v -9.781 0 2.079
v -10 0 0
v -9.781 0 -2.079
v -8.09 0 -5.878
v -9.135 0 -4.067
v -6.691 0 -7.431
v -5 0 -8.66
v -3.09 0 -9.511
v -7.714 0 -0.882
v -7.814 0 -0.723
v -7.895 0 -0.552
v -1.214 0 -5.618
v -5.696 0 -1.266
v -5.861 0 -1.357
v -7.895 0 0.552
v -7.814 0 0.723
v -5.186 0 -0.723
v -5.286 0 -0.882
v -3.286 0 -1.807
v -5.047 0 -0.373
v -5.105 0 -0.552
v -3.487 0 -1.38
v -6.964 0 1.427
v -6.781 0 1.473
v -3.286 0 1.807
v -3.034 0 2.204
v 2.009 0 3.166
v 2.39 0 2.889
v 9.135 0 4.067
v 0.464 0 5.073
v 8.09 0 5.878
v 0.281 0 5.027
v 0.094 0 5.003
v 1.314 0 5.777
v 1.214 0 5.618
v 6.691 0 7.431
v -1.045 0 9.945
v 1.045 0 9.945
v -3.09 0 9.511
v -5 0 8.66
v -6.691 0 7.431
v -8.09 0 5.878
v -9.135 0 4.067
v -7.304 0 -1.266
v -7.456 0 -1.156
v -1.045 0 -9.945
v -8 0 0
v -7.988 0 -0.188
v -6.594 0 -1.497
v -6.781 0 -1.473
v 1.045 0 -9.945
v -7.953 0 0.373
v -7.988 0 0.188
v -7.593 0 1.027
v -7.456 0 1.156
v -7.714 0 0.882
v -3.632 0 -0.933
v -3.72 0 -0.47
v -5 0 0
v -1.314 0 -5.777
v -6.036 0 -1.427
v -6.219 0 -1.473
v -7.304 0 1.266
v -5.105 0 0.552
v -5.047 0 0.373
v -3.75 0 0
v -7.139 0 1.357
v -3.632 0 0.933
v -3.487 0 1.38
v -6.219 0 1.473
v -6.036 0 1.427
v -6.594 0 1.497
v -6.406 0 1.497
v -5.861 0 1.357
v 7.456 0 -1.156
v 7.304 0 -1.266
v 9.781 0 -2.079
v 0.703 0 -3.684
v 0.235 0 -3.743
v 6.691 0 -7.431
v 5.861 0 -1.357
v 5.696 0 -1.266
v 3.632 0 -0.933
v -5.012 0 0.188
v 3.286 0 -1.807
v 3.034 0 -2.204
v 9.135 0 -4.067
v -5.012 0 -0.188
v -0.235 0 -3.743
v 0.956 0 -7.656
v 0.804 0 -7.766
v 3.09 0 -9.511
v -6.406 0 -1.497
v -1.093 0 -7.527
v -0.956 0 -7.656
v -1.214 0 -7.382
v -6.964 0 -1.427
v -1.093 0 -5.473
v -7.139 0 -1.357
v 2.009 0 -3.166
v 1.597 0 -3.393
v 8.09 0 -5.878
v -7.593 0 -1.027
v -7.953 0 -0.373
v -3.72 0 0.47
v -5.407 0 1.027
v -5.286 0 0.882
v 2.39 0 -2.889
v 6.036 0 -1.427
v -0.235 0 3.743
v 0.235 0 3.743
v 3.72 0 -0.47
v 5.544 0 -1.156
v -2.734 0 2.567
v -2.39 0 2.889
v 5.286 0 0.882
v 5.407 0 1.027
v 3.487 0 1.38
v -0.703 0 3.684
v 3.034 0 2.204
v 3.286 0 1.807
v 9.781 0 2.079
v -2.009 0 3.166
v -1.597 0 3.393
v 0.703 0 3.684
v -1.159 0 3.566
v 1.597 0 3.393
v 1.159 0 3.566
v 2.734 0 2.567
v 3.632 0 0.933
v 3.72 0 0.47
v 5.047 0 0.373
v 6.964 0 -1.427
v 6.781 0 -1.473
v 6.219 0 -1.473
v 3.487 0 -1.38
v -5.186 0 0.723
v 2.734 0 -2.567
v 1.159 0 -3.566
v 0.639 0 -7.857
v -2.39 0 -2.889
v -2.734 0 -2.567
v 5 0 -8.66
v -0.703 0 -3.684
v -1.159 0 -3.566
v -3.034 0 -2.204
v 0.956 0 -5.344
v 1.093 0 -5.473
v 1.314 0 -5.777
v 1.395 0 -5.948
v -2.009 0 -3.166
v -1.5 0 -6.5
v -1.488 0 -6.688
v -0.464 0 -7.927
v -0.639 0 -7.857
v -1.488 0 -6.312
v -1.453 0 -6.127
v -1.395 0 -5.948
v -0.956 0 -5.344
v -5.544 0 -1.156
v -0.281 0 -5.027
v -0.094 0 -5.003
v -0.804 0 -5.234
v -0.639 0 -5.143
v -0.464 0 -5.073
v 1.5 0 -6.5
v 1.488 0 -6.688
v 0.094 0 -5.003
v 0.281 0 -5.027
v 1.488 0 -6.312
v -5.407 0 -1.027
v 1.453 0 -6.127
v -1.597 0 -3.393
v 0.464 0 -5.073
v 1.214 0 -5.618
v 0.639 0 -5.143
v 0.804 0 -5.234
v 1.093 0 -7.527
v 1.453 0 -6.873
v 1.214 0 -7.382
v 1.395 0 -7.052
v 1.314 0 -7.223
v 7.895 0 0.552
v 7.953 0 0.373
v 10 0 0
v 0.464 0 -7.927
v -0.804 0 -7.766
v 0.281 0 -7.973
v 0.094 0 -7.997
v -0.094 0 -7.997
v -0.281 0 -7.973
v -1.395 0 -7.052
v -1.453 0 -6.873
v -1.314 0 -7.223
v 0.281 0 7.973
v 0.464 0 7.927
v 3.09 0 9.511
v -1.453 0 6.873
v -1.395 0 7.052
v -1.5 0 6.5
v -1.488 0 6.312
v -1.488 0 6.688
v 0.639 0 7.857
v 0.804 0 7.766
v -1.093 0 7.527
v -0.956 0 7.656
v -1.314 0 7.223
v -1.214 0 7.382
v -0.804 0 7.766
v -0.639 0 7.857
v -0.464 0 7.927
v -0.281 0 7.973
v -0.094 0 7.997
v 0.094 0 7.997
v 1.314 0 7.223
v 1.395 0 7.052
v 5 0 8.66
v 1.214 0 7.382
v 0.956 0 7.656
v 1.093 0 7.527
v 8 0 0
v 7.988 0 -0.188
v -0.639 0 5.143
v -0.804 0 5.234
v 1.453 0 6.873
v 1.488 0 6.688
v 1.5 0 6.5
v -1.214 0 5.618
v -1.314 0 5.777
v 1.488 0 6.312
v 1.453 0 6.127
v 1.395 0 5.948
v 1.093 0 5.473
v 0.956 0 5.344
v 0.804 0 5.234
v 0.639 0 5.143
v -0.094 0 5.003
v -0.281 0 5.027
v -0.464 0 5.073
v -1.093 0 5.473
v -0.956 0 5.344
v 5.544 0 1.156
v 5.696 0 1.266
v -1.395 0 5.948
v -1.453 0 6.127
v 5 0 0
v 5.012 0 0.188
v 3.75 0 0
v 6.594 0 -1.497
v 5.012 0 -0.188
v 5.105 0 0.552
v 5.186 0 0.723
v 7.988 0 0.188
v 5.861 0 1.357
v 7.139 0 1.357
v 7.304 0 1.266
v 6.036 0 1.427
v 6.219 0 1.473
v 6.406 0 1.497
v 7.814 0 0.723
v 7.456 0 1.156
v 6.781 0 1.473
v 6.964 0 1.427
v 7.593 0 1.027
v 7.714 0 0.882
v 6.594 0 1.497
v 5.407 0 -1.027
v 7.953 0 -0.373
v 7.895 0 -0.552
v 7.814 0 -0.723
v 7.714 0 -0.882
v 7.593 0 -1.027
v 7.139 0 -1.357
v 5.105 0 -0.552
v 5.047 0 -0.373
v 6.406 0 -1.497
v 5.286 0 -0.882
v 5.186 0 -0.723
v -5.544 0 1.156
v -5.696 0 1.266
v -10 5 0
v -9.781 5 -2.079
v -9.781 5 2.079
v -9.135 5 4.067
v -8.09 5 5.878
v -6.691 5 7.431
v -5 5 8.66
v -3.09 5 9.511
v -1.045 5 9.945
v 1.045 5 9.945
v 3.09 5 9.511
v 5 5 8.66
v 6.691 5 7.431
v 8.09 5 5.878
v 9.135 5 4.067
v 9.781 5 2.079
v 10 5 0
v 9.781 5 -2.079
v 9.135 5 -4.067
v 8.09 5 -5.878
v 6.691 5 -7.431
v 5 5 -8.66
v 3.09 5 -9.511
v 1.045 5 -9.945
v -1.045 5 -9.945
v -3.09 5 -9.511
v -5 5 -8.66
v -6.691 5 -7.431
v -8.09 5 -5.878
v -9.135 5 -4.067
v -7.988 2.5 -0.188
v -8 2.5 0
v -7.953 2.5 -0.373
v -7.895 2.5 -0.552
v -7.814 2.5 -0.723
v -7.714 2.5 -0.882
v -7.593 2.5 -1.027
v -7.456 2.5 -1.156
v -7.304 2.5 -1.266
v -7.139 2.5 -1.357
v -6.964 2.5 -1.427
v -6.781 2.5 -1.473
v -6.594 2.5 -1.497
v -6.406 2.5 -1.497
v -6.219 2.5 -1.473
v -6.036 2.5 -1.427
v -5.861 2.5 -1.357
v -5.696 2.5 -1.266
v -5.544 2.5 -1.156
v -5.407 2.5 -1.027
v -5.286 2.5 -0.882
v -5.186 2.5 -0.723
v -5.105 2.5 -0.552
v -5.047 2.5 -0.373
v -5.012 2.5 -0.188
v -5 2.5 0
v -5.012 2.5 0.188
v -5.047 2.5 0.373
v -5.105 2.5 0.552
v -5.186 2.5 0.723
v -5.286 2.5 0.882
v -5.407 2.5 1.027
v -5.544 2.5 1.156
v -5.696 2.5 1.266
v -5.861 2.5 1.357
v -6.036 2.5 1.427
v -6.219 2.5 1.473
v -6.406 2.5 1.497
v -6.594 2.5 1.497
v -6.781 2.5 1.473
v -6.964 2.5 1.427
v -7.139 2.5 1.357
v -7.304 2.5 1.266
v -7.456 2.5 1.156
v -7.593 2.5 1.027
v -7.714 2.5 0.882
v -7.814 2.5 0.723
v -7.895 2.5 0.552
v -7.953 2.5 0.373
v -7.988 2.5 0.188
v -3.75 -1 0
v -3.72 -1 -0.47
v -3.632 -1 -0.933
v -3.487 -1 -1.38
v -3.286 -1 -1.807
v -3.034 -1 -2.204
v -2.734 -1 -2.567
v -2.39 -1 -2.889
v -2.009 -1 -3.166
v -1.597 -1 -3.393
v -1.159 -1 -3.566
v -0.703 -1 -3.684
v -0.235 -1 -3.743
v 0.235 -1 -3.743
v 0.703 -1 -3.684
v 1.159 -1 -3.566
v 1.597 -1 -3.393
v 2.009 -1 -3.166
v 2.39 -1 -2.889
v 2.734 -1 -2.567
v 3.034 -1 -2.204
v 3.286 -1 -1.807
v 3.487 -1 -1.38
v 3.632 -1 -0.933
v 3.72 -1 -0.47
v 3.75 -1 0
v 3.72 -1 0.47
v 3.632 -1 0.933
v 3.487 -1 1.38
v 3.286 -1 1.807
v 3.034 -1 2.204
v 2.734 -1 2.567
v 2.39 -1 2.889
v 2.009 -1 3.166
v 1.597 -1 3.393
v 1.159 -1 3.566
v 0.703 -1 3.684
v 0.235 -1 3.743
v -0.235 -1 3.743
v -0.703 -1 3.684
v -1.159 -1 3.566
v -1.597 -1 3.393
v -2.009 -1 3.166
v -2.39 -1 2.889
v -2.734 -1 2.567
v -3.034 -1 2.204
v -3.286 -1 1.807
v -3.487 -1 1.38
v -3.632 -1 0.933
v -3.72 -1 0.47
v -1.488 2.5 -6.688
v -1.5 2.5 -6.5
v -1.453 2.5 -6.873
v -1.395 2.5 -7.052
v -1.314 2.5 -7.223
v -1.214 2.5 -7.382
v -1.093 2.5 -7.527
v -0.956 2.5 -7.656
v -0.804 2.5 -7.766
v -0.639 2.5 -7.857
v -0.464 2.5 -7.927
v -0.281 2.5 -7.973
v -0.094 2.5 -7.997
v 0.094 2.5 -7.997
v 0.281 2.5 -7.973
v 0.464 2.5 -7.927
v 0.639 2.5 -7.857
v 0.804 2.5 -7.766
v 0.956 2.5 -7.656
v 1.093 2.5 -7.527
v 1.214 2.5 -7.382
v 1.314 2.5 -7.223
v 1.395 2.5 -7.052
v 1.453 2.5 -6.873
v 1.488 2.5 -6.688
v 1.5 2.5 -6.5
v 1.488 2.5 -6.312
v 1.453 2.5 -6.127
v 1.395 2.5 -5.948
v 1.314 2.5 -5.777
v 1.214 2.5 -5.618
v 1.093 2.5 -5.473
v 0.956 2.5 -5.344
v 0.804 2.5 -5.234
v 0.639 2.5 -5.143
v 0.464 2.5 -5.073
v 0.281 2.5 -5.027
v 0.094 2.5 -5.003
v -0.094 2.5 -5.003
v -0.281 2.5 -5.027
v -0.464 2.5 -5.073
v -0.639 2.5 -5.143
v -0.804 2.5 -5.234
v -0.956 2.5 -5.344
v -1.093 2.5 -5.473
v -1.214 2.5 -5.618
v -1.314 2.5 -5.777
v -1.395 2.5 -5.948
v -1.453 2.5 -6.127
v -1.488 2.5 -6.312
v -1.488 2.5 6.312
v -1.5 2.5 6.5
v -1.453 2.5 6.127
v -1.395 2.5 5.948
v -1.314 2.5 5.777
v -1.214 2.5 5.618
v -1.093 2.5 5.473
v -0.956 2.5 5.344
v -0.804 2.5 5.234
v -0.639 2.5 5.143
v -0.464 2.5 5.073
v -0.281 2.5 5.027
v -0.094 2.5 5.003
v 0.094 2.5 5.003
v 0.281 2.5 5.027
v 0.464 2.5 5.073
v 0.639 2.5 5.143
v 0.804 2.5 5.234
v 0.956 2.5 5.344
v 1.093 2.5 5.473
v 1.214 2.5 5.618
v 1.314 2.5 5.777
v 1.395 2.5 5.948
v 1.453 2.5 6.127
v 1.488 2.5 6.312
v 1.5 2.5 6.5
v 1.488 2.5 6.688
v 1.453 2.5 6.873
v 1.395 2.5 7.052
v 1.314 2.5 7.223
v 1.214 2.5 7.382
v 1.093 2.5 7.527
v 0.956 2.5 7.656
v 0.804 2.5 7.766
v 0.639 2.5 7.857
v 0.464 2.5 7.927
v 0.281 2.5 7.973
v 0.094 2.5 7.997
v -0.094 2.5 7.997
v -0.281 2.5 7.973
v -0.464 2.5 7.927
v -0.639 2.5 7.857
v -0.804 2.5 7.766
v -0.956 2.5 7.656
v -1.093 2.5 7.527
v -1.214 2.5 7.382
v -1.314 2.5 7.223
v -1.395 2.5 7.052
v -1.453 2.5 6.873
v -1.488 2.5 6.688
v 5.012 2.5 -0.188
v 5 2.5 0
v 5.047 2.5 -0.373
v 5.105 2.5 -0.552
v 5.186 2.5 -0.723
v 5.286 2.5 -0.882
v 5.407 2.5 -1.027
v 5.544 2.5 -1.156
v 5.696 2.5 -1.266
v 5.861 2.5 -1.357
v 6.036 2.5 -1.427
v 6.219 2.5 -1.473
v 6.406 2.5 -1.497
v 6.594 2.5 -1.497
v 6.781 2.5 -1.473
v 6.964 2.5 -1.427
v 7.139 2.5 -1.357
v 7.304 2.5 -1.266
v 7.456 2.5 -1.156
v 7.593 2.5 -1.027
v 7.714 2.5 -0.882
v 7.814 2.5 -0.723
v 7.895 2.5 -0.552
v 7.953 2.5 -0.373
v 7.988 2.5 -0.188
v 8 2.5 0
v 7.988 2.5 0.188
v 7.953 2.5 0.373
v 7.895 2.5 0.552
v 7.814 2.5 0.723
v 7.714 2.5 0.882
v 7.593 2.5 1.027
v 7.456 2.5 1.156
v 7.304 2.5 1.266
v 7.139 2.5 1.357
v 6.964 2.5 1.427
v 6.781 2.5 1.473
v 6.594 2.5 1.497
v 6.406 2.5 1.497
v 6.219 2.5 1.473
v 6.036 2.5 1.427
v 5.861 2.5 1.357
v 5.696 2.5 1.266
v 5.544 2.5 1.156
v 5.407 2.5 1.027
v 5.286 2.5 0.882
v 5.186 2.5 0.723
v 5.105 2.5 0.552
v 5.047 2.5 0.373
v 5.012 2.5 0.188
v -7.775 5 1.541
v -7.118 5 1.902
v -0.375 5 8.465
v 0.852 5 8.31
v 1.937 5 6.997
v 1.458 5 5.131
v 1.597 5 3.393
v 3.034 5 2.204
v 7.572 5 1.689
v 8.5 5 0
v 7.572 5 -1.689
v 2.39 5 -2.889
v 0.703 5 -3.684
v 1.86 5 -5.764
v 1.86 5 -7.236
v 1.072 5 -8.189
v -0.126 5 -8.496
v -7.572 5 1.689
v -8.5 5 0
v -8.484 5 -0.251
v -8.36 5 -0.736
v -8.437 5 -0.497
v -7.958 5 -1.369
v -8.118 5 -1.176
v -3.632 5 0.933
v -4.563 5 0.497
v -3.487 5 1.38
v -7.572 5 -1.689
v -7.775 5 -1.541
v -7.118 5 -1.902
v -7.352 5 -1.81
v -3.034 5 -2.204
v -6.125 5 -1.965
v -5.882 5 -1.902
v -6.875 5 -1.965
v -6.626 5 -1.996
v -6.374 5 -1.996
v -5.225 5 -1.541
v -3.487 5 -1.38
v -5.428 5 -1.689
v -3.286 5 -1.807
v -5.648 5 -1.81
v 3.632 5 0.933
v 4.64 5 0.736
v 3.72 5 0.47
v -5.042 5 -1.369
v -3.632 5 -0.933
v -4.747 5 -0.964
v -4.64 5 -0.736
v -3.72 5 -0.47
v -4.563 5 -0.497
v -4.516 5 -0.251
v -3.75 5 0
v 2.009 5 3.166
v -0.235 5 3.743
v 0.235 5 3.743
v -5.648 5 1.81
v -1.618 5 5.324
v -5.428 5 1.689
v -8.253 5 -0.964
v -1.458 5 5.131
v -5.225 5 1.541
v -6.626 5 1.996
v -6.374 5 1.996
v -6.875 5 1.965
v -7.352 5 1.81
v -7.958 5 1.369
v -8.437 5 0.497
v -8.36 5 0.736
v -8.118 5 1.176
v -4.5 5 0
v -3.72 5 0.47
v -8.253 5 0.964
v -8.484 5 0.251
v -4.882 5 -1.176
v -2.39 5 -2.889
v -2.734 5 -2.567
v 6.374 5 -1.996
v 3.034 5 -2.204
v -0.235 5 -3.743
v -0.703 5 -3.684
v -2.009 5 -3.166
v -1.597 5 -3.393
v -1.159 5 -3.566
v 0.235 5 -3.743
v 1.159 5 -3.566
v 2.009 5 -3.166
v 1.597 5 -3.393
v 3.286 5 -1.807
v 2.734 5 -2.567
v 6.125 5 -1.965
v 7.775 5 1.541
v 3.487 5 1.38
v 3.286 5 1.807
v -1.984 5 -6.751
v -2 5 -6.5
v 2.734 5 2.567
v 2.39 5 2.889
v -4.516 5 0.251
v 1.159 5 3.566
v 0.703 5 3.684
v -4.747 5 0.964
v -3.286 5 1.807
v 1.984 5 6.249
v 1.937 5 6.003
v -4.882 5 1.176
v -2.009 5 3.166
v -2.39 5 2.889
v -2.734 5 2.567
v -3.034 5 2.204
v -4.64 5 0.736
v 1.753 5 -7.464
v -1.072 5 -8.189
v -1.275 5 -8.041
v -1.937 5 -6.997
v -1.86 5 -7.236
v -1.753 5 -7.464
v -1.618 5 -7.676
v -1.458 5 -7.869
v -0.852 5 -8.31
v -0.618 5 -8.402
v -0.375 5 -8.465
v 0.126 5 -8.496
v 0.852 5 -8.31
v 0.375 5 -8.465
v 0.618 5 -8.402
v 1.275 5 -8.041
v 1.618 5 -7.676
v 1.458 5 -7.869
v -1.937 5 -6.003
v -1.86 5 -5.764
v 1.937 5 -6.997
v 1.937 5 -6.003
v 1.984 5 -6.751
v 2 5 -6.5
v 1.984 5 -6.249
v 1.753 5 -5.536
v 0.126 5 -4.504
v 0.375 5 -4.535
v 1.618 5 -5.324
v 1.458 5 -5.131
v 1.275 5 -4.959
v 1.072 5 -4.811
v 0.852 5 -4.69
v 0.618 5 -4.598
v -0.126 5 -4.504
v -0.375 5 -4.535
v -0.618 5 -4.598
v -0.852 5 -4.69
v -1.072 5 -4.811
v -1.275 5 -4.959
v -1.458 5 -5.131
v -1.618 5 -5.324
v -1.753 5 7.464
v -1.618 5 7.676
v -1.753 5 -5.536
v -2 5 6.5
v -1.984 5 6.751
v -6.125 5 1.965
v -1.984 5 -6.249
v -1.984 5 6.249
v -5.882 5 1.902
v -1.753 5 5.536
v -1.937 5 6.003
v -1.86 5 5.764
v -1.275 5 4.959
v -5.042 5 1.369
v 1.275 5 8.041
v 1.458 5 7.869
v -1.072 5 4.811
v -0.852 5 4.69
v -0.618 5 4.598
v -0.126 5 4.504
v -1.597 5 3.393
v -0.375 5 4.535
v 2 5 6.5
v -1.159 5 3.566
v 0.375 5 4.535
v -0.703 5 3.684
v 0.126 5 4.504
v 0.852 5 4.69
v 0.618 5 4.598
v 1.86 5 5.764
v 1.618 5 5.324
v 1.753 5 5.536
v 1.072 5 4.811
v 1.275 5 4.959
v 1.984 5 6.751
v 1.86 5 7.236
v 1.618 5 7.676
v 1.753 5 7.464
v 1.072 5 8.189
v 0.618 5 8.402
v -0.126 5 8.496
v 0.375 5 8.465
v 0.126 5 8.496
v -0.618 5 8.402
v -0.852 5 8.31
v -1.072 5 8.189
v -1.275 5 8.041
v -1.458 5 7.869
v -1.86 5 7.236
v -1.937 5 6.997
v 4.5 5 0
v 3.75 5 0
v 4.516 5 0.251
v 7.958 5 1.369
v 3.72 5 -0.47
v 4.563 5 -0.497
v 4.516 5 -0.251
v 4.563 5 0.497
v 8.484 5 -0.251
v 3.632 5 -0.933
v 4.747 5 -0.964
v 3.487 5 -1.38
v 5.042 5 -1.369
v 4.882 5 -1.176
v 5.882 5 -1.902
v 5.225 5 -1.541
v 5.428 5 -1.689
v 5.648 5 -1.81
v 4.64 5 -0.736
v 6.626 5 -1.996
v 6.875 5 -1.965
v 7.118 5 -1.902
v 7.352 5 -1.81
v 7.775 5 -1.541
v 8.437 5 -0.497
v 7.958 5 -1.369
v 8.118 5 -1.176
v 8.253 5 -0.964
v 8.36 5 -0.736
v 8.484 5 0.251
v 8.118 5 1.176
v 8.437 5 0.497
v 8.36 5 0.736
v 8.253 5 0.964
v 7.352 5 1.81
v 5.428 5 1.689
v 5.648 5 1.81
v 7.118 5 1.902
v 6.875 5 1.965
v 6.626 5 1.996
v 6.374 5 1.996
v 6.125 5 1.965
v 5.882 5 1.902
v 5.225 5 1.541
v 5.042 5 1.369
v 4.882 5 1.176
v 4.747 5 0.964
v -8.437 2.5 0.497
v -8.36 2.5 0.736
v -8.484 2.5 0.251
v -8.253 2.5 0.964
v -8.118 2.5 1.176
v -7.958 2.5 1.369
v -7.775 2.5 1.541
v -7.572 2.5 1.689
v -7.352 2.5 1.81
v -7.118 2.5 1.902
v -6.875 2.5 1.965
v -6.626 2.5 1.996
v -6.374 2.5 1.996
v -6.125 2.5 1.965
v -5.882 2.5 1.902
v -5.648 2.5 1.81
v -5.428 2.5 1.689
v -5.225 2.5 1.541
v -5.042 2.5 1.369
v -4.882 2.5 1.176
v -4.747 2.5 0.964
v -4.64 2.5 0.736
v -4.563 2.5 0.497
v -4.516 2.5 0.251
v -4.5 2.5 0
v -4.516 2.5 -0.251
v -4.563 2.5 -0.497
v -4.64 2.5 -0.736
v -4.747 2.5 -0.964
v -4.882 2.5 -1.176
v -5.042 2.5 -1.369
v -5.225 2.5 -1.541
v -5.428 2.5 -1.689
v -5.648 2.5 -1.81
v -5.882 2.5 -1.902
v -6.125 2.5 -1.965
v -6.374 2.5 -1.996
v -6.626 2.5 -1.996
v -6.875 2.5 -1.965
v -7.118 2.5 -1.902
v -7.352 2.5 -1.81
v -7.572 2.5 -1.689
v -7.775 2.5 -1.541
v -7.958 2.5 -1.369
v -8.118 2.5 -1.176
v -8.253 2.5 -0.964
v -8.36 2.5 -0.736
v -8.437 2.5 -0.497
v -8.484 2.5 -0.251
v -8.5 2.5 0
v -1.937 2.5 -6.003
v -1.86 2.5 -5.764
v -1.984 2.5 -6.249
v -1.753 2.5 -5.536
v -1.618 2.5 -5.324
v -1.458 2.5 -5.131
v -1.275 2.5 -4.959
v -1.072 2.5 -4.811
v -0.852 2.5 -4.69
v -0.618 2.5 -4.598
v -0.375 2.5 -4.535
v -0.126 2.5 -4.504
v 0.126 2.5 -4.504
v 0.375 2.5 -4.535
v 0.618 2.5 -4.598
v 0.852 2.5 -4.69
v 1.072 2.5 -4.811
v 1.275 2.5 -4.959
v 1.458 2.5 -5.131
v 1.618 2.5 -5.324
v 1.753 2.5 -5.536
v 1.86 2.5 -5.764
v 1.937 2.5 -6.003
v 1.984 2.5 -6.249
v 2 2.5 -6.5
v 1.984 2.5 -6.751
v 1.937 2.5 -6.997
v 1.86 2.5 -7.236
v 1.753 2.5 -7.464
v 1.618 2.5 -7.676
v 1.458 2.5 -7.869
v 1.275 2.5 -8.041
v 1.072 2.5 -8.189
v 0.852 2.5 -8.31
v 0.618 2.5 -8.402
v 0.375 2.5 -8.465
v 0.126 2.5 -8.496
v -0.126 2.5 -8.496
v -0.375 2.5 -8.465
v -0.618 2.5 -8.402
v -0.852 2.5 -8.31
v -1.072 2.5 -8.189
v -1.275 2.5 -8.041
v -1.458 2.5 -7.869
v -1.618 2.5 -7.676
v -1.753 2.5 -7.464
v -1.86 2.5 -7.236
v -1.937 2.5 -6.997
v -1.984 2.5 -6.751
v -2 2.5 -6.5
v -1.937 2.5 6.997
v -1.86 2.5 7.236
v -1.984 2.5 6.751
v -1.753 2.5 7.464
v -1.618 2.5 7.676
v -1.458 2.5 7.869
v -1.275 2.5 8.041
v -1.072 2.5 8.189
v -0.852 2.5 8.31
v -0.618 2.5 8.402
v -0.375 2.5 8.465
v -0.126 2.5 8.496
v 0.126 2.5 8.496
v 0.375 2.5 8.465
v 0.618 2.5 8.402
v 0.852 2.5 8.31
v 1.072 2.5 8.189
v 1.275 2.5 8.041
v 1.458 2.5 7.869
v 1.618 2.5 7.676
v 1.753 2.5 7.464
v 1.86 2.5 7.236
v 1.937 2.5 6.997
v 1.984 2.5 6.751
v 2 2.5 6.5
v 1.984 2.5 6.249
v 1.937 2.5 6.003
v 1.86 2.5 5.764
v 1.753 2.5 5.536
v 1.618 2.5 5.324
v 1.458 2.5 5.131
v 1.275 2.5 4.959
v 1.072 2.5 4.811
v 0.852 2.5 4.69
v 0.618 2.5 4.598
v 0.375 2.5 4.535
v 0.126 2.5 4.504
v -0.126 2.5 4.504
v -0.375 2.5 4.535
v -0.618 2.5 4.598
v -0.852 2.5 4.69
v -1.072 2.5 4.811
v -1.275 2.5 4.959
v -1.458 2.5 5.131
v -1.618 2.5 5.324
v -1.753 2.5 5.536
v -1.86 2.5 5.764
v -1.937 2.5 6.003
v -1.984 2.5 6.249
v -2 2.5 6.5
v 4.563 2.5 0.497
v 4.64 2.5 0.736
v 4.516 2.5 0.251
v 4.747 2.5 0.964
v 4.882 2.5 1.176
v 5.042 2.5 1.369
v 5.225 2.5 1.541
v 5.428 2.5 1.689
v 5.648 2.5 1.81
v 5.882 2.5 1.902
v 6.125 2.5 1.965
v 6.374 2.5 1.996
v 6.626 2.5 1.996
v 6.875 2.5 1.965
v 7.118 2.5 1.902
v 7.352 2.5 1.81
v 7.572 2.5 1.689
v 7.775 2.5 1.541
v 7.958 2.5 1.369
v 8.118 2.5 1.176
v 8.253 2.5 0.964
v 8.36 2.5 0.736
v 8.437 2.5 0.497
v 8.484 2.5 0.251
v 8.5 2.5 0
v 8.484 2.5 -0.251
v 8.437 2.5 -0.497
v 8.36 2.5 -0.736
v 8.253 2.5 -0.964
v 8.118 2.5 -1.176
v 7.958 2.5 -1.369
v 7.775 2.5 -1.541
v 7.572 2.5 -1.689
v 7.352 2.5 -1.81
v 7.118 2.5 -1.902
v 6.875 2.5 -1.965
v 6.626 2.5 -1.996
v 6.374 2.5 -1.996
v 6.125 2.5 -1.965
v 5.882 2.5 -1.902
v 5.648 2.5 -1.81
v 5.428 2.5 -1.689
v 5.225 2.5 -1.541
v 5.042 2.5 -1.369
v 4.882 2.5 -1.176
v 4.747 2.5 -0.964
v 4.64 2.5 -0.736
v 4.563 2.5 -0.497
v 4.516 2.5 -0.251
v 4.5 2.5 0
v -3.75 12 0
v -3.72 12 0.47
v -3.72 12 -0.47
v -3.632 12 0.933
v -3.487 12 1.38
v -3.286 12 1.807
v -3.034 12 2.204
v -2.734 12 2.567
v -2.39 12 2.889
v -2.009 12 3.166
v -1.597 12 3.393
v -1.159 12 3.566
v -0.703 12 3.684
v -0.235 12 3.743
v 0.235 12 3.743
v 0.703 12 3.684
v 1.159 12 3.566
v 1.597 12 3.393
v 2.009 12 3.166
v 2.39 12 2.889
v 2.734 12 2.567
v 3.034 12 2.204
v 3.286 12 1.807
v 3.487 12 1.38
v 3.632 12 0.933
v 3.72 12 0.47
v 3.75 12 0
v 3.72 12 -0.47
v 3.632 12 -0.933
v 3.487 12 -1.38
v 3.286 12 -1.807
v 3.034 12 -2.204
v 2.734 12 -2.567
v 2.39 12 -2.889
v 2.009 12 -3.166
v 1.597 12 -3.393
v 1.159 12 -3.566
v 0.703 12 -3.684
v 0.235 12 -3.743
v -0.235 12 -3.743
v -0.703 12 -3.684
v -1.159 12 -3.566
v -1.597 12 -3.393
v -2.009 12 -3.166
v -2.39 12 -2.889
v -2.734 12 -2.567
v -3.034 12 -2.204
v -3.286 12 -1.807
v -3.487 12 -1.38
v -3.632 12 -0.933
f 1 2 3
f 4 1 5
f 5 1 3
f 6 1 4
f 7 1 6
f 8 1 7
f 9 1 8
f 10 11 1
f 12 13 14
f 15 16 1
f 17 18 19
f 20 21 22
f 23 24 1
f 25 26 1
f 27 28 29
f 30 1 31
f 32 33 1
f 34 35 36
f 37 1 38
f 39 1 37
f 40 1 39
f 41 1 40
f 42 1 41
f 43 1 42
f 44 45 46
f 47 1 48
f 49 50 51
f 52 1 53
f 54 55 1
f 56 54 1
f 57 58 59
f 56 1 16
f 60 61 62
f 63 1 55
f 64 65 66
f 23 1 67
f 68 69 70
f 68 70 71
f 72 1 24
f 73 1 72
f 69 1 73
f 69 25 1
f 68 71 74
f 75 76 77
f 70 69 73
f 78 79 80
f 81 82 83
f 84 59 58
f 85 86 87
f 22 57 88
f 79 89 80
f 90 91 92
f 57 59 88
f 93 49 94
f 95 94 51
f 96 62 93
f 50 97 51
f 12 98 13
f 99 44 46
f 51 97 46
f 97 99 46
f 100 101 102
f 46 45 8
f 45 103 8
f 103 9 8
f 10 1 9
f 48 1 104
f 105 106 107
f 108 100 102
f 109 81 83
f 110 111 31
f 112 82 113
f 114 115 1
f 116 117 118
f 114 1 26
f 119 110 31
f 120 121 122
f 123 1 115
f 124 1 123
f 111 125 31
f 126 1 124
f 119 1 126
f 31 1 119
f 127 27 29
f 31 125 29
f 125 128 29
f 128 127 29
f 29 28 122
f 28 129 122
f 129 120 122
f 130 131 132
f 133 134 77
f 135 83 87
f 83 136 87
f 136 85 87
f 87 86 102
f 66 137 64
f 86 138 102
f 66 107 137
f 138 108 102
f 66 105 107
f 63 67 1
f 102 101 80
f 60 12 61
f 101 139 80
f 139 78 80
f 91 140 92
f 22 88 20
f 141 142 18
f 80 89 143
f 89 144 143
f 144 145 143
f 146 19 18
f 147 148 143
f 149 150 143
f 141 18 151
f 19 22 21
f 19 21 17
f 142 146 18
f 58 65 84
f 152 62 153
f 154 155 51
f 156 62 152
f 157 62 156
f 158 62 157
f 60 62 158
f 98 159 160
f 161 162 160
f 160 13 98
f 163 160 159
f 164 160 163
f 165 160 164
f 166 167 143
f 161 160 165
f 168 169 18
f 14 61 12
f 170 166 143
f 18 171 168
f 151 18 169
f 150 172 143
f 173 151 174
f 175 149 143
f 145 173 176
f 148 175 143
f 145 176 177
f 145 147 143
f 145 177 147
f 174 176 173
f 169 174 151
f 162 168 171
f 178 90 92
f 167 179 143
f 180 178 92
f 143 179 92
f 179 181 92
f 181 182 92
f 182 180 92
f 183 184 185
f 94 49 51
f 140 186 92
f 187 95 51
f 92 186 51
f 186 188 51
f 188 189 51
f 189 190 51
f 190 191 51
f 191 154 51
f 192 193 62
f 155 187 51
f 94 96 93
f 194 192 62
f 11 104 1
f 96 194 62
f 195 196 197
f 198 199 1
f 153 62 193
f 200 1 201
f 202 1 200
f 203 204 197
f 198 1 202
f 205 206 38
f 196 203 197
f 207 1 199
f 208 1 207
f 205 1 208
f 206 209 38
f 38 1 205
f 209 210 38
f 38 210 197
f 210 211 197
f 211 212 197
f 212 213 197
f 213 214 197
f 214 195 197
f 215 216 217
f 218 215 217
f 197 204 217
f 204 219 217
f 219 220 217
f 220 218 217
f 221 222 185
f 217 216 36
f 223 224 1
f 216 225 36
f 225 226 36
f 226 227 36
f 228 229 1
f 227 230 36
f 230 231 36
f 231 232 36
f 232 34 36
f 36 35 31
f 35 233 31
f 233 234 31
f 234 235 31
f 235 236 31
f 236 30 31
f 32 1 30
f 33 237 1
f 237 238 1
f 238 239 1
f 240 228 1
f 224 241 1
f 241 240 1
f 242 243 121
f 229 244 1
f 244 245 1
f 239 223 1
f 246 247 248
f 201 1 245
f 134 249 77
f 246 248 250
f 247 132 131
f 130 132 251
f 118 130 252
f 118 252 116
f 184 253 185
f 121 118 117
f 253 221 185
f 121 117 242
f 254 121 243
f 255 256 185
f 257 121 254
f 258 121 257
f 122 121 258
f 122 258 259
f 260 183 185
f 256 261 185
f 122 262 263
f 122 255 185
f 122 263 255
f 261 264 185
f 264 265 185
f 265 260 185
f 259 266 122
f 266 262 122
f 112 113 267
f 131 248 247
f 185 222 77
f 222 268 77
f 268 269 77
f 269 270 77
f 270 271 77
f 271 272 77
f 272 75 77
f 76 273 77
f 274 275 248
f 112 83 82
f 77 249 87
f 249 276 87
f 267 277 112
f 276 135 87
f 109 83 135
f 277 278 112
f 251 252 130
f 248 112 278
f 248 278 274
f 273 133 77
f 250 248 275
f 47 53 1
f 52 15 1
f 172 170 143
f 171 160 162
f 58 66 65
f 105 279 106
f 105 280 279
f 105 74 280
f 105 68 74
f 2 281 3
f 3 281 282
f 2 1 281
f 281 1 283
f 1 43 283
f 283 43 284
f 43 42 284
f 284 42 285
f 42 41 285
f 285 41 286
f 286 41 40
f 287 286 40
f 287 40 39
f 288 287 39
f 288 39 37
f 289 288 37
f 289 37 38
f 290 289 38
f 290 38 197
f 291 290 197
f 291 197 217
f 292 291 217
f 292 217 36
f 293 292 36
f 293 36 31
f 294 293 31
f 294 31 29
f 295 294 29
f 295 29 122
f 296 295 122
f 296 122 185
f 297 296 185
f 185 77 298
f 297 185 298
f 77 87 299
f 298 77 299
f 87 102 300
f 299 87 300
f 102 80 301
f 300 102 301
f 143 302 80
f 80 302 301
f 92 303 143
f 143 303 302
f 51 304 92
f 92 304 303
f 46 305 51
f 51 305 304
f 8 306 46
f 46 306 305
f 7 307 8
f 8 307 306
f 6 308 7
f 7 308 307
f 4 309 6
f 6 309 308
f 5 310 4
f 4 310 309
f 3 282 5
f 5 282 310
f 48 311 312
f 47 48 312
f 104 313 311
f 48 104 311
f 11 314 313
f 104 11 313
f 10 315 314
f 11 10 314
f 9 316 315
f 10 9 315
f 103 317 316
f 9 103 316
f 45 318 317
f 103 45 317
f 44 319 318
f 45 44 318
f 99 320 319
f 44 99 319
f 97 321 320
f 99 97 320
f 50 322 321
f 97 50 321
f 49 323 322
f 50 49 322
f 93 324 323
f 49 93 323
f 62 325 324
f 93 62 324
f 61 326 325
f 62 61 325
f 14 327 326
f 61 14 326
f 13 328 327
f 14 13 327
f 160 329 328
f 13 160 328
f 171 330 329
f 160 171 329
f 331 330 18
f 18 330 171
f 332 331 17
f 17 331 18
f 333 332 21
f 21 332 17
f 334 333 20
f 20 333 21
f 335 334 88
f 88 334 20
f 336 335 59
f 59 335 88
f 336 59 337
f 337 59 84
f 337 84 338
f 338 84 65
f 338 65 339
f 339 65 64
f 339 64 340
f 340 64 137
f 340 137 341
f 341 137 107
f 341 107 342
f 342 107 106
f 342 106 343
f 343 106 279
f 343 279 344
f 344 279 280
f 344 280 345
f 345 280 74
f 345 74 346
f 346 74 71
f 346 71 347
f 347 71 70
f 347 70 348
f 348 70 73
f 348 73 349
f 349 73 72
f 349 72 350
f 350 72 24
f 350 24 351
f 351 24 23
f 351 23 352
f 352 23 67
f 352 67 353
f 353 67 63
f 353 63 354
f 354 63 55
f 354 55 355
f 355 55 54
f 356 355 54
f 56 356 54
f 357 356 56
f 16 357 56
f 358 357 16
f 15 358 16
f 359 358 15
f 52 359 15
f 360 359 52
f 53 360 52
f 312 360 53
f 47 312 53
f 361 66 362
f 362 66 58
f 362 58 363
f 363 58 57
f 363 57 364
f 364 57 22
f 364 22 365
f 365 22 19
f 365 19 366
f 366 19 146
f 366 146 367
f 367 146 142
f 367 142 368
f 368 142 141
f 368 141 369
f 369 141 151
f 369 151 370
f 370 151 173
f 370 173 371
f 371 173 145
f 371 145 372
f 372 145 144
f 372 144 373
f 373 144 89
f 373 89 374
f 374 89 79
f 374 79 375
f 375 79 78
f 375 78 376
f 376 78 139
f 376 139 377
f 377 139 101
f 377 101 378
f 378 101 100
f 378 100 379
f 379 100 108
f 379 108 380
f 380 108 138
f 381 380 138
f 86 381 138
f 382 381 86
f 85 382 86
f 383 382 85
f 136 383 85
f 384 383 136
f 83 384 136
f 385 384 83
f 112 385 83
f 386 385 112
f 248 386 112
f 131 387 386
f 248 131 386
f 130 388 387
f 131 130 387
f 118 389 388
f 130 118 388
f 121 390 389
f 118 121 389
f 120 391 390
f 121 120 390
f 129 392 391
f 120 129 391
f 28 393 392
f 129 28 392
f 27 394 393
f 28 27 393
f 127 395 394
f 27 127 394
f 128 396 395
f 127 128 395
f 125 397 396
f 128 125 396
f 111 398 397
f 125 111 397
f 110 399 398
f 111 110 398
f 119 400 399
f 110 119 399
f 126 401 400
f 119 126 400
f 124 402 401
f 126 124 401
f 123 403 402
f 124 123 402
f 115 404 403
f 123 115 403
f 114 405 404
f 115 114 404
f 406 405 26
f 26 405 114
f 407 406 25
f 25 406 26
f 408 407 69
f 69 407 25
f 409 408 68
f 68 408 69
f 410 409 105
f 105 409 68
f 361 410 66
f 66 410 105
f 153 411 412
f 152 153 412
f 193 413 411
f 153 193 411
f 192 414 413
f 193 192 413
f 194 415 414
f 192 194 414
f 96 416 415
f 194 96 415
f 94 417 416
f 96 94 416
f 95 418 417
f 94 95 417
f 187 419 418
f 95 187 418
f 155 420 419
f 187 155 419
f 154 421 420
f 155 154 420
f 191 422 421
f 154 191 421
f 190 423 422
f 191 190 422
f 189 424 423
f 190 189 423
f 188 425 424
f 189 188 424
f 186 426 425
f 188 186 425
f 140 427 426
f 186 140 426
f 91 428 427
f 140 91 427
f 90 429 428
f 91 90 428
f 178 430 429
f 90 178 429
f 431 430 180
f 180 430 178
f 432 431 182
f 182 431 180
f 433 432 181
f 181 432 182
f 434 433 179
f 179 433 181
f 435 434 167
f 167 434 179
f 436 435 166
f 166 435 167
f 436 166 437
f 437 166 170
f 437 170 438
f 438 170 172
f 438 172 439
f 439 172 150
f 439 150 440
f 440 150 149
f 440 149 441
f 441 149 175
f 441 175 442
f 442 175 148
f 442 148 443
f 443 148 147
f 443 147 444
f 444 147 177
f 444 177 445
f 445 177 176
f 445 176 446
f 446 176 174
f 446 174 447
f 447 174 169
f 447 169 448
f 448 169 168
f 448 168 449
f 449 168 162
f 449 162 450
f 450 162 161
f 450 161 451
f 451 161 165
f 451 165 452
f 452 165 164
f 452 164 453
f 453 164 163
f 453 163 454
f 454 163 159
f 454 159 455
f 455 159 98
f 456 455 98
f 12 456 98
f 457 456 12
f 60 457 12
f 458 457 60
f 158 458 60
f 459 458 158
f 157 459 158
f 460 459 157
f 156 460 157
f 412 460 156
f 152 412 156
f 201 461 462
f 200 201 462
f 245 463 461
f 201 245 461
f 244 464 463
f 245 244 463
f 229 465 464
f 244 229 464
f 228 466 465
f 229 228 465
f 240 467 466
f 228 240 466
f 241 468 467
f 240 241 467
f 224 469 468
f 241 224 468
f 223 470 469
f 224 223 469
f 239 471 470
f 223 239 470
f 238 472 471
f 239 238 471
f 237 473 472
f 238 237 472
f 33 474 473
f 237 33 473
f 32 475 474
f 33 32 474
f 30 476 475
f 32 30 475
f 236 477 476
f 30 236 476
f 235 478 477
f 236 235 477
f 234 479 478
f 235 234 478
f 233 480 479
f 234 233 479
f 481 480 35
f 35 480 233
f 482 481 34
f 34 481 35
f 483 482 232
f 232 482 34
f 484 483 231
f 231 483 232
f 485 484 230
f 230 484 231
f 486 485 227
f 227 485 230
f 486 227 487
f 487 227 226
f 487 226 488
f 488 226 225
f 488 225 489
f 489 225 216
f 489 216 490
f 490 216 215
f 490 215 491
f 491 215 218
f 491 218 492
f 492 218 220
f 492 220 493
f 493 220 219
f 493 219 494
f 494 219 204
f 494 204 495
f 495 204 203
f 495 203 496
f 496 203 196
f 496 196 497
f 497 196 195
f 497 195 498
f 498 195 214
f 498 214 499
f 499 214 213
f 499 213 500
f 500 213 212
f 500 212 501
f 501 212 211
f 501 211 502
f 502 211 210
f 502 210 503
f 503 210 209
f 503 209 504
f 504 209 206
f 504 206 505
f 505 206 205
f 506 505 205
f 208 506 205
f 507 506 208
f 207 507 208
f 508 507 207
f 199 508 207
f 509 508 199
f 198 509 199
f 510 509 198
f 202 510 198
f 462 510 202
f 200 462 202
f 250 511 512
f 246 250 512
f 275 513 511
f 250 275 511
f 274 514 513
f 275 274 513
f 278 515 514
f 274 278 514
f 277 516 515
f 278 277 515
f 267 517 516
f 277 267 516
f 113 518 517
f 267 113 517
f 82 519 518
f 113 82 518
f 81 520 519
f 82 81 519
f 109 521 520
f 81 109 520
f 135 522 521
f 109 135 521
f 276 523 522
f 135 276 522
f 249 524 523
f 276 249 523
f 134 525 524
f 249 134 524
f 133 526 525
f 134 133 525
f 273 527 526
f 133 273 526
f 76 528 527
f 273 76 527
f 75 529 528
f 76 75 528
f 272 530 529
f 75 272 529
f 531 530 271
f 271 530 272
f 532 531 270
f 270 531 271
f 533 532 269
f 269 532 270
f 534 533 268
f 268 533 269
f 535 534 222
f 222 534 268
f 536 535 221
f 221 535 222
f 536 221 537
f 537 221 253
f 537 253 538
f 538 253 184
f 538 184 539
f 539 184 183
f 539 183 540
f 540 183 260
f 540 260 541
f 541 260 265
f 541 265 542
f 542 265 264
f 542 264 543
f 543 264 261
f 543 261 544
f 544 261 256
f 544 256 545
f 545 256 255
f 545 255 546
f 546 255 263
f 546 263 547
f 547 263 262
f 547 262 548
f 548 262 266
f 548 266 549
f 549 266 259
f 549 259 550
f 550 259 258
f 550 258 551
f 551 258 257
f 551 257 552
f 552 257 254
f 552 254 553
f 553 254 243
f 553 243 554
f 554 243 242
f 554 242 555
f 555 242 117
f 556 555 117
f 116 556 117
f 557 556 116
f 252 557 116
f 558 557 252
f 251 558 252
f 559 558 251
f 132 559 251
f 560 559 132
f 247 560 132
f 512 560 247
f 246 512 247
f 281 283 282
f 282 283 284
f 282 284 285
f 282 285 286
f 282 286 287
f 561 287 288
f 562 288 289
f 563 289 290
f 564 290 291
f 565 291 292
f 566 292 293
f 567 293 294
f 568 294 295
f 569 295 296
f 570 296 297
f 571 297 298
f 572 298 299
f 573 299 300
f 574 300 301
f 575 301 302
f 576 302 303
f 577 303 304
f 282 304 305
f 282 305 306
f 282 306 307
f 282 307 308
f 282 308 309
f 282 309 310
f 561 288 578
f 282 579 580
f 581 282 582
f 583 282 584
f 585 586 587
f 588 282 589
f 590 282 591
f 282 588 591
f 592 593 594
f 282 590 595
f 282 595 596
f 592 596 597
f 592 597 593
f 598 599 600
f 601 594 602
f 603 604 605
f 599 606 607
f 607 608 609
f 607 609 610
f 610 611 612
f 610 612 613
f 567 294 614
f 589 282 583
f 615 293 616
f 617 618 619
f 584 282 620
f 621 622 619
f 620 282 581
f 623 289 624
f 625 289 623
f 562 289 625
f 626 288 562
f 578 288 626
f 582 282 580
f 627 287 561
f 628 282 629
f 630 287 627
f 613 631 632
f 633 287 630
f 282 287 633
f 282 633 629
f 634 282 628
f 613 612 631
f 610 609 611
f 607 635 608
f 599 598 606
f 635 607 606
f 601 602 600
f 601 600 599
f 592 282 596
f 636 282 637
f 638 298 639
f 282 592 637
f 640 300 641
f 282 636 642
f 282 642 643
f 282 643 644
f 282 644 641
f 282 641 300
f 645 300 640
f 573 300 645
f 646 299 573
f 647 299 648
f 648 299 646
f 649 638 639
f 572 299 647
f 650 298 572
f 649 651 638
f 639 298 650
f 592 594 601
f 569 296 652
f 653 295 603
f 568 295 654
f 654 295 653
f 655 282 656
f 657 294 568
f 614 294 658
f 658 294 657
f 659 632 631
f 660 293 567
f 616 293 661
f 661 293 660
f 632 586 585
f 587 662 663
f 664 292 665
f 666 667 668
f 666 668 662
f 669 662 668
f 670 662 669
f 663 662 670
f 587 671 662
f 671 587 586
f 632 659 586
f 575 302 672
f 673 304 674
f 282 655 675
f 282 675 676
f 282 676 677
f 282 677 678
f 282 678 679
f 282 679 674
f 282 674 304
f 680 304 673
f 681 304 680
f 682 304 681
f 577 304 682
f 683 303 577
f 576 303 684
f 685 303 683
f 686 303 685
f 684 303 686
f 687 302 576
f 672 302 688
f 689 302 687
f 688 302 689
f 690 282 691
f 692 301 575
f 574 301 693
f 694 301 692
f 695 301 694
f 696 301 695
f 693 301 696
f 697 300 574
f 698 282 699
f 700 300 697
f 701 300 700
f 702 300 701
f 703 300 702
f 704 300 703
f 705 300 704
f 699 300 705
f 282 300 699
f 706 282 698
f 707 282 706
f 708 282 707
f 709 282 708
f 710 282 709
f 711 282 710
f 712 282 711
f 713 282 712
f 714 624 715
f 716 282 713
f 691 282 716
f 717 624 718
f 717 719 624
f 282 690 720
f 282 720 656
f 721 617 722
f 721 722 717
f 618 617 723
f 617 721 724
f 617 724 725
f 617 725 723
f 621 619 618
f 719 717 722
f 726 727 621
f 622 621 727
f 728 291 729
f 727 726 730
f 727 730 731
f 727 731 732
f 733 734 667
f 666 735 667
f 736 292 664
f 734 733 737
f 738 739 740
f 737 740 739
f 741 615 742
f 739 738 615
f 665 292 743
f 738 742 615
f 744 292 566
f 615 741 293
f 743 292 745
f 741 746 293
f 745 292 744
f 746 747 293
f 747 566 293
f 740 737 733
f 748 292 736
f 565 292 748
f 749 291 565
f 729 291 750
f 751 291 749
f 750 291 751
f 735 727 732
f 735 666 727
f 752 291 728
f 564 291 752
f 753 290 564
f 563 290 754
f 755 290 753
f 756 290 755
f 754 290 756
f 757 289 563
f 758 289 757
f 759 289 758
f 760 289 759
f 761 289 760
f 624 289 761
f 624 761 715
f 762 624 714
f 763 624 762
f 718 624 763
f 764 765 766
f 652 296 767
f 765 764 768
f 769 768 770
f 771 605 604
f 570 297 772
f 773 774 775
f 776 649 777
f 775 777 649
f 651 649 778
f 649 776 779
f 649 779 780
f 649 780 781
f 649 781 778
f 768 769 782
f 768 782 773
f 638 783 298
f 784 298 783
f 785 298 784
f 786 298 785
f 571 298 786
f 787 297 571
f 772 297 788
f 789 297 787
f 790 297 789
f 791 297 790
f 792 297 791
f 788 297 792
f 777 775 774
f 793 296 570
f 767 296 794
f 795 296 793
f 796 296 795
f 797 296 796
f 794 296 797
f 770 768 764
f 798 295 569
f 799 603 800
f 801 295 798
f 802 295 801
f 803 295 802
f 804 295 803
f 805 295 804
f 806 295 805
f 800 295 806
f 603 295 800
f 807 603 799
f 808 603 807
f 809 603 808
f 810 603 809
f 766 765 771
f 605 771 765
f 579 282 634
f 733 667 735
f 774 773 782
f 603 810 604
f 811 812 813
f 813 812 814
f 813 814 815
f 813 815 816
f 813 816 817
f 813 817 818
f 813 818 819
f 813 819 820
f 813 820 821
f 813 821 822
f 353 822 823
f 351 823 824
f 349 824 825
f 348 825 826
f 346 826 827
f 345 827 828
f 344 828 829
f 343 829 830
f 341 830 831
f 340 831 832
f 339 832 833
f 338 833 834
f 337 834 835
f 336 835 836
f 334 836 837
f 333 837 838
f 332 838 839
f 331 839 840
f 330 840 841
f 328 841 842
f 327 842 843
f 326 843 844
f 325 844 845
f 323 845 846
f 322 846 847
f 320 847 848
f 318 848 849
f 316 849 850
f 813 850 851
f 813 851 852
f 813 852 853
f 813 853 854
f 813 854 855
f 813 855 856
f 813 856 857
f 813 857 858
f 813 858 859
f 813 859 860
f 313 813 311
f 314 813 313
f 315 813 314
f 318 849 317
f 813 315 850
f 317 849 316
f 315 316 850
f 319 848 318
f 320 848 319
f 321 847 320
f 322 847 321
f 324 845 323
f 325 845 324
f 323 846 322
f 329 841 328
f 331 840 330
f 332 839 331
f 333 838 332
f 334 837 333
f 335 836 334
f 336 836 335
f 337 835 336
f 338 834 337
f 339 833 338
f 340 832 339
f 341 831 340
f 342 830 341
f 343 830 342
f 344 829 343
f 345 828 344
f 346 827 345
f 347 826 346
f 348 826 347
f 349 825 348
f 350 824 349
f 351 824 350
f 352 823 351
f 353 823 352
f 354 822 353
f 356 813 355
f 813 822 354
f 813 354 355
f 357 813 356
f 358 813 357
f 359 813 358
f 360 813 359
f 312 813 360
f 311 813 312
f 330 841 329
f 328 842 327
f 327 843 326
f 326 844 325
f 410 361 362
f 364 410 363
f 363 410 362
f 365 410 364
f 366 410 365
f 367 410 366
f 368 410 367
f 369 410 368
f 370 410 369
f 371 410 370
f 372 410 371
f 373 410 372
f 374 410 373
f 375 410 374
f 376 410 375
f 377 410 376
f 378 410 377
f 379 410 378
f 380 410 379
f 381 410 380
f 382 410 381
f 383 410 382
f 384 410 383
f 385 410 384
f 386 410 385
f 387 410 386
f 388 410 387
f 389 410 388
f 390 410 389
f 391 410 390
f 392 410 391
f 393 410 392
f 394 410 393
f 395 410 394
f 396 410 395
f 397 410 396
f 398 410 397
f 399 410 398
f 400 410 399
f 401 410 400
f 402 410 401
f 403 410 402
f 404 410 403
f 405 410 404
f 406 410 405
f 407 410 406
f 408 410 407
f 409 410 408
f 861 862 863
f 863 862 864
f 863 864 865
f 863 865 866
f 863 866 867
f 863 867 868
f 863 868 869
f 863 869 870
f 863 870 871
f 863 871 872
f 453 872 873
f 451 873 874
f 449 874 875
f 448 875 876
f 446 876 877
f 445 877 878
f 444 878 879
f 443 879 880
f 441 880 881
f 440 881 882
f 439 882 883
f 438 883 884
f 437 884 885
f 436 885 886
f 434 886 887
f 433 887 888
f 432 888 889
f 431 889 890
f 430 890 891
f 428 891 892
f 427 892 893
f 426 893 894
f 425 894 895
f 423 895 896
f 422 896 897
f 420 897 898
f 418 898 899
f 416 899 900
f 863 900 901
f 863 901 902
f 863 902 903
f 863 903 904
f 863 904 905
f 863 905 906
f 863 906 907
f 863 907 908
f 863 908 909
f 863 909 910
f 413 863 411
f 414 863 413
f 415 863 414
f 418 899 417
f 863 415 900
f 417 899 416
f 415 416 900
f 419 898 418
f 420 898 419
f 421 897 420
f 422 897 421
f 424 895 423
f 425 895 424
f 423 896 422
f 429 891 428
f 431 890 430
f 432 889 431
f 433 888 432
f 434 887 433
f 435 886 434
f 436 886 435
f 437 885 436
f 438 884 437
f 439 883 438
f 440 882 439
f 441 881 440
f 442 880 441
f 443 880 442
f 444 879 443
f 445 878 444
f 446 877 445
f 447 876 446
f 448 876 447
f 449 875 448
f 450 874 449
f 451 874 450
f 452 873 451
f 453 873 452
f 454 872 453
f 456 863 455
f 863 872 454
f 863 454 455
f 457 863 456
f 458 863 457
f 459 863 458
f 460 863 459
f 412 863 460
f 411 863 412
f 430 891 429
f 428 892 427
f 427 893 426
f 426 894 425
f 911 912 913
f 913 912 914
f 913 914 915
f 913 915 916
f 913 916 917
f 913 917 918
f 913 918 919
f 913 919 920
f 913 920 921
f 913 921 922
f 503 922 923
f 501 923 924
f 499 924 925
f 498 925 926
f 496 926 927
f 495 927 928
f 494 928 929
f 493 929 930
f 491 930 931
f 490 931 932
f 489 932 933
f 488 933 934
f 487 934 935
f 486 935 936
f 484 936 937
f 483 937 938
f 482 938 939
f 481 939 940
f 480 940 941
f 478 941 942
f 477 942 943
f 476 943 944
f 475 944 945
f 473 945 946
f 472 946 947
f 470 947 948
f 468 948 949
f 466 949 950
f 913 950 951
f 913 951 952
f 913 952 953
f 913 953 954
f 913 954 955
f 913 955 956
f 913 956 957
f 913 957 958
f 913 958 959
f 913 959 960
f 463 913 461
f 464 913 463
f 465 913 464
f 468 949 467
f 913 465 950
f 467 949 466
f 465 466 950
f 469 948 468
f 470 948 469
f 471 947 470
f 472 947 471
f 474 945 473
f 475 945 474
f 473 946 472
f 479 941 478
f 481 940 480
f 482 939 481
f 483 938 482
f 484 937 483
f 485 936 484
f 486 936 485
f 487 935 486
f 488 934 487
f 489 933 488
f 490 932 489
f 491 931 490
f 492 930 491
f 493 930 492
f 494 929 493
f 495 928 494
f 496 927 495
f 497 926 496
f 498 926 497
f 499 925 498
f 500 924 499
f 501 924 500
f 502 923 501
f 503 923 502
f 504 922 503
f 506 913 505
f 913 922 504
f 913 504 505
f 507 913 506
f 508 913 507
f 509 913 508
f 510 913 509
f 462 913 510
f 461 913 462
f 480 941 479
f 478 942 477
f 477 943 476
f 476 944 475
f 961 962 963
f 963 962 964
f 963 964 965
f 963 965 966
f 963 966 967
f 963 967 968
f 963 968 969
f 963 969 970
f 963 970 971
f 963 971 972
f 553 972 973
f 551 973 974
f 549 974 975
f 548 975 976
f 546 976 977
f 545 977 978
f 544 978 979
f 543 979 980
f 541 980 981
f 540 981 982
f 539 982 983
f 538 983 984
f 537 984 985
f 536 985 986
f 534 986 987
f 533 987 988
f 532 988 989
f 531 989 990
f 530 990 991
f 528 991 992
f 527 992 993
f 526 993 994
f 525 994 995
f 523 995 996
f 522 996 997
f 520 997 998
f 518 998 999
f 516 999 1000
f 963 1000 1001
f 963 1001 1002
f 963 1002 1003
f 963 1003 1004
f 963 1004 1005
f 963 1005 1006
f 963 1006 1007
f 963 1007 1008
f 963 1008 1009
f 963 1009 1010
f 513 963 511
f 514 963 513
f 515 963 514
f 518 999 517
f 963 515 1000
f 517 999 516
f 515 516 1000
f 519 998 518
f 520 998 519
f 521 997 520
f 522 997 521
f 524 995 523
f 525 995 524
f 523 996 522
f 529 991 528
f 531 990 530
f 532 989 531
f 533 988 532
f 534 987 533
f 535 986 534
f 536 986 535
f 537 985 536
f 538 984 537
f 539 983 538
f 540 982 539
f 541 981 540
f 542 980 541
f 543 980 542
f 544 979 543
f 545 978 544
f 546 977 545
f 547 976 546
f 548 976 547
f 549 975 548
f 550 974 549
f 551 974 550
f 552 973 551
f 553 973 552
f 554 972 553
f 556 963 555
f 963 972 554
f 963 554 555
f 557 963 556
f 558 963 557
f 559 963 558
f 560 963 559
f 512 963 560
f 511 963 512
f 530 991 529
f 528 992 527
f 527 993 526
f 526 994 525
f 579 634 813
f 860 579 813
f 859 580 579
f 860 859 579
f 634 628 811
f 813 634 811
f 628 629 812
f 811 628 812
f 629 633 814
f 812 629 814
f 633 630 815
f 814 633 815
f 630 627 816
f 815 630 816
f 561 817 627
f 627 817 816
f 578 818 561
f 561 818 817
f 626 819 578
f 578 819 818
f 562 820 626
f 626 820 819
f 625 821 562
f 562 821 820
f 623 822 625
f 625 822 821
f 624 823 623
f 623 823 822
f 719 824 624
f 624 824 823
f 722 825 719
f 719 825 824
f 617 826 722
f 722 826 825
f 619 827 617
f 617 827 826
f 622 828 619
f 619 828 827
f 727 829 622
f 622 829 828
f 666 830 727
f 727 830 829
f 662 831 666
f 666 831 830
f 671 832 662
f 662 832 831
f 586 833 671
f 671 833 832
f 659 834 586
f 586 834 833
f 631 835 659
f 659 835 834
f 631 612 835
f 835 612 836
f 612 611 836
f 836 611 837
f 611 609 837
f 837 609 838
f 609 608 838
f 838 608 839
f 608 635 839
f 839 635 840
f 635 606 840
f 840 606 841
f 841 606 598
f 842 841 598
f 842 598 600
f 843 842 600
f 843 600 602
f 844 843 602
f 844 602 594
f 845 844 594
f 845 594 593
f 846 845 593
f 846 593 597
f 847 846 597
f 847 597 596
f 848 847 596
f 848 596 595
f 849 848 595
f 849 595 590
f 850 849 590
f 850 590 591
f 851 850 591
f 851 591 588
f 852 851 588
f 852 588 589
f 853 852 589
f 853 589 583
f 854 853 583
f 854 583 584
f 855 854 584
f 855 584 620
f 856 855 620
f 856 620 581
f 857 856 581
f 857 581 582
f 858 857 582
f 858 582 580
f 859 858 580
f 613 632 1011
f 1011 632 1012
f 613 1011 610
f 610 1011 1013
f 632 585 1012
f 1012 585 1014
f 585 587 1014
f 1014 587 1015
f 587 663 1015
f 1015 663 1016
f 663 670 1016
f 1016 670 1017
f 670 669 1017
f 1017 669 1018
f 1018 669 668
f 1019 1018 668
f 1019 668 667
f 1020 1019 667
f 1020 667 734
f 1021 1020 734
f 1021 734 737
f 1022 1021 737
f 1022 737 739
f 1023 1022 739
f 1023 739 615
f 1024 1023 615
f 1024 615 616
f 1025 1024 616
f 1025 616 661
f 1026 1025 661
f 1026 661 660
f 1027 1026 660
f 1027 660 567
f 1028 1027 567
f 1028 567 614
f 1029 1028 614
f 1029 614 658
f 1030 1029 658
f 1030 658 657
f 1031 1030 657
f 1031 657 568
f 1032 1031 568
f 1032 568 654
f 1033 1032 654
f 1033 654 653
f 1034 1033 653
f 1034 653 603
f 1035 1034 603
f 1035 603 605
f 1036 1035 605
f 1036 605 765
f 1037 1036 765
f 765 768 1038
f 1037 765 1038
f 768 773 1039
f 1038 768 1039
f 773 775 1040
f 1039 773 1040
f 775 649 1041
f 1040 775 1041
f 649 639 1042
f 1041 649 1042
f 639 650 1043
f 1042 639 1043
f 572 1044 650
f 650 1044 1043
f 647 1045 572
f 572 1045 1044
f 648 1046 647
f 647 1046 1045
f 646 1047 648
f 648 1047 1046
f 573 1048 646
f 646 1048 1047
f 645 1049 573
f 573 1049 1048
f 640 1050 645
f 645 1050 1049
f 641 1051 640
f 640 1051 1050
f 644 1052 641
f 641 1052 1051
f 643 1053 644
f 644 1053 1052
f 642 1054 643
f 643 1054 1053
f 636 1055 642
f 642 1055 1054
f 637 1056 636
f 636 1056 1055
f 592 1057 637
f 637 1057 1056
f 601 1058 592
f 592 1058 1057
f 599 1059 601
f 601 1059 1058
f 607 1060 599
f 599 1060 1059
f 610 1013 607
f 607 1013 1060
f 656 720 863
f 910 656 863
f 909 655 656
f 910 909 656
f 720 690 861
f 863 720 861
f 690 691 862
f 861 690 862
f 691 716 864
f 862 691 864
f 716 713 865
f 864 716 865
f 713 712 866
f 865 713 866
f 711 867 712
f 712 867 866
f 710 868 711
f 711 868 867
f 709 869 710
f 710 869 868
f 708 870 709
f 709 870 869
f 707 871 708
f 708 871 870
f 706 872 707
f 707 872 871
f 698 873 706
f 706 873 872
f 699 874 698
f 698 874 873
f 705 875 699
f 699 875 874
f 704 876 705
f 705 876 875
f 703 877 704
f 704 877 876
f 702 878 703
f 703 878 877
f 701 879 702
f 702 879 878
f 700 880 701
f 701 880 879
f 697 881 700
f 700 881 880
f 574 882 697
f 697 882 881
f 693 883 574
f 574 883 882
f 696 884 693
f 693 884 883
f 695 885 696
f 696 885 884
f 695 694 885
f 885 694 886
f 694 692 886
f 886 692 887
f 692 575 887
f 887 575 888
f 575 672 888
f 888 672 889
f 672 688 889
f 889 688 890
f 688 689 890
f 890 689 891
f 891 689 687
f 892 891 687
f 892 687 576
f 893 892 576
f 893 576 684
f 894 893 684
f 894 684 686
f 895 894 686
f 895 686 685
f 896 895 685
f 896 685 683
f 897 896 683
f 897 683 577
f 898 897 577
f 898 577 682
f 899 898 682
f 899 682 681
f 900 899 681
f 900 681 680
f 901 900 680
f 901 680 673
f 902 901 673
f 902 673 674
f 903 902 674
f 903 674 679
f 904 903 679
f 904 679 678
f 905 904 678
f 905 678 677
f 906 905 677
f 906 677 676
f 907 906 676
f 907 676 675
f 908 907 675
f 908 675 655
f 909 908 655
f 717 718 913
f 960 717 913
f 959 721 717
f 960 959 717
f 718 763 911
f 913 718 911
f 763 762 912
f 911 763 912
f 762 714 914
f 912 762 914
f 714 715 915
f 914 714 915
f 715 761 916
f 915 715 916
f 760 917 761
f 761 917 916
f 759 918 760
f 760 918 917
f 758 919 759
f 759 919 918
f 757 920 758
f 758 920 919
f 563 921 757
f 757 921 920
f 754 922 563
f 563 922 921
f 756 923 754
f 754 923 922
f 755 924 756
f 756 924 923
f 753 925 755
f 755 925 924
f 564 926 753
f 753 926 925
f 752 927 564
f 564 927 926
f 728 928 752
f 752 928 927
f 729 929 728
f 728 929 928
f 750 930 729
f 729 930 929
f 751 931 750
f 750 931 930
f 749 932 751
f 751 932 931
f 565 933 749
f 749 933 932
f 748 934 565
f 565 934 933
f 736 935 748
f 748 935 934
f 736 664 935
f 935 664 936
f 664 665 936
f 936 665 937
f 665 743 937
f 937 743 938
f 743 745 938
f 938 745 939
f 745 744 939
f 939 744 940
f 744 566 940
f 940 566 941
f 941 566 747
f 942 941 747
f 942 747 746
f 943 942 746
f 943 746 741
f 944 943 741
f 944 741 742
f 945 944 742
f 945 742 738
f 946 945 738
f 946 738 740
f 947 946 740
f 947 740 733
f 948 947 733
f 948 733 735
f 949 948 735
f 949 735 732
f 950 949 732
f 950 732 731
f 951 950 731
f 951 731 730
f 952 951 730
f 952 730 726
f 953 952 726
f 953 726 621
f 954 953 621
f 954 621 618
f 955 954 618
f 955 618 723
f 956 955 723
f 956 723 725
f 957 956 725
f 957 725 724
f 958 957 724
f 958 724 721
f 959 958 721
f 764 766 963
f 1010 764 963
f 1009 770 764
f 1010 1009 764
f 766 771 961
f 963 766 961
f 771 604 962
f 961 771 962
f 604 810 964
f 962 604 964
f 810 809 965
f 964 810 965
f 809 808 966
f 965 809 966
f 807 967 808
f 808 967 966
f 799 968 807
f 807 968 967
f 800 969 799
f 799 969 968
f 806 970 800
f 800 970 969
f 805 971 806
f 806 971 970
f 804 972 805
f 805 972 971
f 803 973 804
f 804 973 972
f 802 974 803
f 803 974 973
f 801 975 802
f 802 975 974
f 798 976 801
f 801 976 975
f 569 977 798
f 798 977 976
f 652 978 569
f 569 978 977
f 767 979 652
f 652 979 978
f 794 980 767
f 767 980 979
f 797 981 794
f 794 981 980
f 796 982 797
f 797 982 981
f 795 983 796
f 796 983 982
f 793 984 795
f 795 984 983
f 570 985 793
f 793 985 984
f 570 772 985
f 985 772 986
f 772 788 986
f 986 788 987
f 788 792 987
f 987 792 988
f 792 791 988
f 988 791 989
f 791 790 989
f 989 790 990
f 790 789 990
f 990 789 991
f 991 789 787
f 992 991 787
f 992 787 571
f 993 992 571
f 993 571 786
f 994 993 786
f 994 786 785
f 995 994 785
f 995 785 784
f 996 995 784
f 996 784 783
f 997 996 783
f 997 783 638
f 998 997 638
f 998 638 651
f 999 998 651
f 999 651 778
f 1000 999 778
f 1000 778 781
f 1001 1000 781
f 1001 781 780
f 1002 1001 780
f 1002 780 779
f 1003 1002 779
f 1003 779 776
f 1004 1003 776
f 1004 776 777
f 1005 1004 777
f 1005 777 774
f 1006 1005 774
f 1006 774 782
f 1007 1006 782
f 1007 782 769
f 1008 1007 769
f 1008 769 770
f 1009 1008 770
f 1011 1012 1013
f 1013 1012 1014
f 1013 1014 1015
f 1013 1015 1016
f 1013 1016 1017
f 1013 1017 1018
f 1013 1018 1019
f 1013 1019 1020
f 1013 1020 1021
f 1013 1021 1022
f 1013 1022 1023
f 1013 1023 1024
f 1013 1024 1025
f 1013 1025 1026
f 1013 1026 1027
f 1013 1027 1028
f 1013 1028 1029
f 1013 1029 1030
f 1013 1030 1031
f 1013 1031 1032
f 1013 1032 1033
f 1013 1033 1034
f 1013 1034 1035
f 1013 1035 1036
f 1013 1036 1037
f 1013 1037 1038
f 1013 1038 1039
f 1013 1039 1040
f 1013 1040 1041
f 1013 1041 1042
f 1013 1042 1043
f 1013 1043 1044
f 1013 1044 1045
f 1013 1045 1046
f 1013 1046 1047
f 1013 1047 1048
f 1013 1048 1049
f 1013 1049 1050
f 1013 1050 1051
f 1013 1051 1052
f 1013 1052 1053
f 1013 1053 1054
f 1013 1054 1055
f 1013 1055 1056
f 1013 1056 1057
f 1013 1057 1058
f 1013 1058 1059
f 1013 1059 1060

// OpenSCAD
module centerHubFront(){
		//centerHubFront
	difference(){
		union(){
			translate([0,2.5,0]) rotate ([90,0,0]) cylinder(r=10,h=5,center=true);
			translate([0,5.5,0]) rotate ([90,0,0]) cylinder(r=3.75,h=13,$fn=50,center=true);
		}
		//screwHoles
		translate([0,4,6.5]) rotate ([90,0,0]) cylinder(r=2,h=3,$fn=50,center=true);
			translate([0,1,6.5]) rotate ([90,0,0]) cylinder(r=1.5,h=4,$fn=50,center=true);
		translate([0,4,-6.5]) rotate ([90,0,0]) cylinder(r=2,h=3,$fn=50,,center=true);
			translate([0,1,-6.5]) rotate ([90,0,0]) cylinder(r=1.5,h=4,$fn=50,center=true);
		translate([-6.5,4,0]) rotate ([90,0,0]) cylinder(r=2,h=3,$fn=50,,center=true);
			translate([-6.5,1,0]) rotate ([90,0,0]) cylinder(r=1.5,h=4,$fn=50,center=true);
		translate([6.5,4,0]) rotate ([90,0,0]) cylinder(r=2,h=3,$fn=50,,center=true);
			translate([6.5,1,0]) rotate ([90,0,0]) cylinder(r=1.5,h=4,$fn=50,center=true);
	}
}

centerHubFront();
